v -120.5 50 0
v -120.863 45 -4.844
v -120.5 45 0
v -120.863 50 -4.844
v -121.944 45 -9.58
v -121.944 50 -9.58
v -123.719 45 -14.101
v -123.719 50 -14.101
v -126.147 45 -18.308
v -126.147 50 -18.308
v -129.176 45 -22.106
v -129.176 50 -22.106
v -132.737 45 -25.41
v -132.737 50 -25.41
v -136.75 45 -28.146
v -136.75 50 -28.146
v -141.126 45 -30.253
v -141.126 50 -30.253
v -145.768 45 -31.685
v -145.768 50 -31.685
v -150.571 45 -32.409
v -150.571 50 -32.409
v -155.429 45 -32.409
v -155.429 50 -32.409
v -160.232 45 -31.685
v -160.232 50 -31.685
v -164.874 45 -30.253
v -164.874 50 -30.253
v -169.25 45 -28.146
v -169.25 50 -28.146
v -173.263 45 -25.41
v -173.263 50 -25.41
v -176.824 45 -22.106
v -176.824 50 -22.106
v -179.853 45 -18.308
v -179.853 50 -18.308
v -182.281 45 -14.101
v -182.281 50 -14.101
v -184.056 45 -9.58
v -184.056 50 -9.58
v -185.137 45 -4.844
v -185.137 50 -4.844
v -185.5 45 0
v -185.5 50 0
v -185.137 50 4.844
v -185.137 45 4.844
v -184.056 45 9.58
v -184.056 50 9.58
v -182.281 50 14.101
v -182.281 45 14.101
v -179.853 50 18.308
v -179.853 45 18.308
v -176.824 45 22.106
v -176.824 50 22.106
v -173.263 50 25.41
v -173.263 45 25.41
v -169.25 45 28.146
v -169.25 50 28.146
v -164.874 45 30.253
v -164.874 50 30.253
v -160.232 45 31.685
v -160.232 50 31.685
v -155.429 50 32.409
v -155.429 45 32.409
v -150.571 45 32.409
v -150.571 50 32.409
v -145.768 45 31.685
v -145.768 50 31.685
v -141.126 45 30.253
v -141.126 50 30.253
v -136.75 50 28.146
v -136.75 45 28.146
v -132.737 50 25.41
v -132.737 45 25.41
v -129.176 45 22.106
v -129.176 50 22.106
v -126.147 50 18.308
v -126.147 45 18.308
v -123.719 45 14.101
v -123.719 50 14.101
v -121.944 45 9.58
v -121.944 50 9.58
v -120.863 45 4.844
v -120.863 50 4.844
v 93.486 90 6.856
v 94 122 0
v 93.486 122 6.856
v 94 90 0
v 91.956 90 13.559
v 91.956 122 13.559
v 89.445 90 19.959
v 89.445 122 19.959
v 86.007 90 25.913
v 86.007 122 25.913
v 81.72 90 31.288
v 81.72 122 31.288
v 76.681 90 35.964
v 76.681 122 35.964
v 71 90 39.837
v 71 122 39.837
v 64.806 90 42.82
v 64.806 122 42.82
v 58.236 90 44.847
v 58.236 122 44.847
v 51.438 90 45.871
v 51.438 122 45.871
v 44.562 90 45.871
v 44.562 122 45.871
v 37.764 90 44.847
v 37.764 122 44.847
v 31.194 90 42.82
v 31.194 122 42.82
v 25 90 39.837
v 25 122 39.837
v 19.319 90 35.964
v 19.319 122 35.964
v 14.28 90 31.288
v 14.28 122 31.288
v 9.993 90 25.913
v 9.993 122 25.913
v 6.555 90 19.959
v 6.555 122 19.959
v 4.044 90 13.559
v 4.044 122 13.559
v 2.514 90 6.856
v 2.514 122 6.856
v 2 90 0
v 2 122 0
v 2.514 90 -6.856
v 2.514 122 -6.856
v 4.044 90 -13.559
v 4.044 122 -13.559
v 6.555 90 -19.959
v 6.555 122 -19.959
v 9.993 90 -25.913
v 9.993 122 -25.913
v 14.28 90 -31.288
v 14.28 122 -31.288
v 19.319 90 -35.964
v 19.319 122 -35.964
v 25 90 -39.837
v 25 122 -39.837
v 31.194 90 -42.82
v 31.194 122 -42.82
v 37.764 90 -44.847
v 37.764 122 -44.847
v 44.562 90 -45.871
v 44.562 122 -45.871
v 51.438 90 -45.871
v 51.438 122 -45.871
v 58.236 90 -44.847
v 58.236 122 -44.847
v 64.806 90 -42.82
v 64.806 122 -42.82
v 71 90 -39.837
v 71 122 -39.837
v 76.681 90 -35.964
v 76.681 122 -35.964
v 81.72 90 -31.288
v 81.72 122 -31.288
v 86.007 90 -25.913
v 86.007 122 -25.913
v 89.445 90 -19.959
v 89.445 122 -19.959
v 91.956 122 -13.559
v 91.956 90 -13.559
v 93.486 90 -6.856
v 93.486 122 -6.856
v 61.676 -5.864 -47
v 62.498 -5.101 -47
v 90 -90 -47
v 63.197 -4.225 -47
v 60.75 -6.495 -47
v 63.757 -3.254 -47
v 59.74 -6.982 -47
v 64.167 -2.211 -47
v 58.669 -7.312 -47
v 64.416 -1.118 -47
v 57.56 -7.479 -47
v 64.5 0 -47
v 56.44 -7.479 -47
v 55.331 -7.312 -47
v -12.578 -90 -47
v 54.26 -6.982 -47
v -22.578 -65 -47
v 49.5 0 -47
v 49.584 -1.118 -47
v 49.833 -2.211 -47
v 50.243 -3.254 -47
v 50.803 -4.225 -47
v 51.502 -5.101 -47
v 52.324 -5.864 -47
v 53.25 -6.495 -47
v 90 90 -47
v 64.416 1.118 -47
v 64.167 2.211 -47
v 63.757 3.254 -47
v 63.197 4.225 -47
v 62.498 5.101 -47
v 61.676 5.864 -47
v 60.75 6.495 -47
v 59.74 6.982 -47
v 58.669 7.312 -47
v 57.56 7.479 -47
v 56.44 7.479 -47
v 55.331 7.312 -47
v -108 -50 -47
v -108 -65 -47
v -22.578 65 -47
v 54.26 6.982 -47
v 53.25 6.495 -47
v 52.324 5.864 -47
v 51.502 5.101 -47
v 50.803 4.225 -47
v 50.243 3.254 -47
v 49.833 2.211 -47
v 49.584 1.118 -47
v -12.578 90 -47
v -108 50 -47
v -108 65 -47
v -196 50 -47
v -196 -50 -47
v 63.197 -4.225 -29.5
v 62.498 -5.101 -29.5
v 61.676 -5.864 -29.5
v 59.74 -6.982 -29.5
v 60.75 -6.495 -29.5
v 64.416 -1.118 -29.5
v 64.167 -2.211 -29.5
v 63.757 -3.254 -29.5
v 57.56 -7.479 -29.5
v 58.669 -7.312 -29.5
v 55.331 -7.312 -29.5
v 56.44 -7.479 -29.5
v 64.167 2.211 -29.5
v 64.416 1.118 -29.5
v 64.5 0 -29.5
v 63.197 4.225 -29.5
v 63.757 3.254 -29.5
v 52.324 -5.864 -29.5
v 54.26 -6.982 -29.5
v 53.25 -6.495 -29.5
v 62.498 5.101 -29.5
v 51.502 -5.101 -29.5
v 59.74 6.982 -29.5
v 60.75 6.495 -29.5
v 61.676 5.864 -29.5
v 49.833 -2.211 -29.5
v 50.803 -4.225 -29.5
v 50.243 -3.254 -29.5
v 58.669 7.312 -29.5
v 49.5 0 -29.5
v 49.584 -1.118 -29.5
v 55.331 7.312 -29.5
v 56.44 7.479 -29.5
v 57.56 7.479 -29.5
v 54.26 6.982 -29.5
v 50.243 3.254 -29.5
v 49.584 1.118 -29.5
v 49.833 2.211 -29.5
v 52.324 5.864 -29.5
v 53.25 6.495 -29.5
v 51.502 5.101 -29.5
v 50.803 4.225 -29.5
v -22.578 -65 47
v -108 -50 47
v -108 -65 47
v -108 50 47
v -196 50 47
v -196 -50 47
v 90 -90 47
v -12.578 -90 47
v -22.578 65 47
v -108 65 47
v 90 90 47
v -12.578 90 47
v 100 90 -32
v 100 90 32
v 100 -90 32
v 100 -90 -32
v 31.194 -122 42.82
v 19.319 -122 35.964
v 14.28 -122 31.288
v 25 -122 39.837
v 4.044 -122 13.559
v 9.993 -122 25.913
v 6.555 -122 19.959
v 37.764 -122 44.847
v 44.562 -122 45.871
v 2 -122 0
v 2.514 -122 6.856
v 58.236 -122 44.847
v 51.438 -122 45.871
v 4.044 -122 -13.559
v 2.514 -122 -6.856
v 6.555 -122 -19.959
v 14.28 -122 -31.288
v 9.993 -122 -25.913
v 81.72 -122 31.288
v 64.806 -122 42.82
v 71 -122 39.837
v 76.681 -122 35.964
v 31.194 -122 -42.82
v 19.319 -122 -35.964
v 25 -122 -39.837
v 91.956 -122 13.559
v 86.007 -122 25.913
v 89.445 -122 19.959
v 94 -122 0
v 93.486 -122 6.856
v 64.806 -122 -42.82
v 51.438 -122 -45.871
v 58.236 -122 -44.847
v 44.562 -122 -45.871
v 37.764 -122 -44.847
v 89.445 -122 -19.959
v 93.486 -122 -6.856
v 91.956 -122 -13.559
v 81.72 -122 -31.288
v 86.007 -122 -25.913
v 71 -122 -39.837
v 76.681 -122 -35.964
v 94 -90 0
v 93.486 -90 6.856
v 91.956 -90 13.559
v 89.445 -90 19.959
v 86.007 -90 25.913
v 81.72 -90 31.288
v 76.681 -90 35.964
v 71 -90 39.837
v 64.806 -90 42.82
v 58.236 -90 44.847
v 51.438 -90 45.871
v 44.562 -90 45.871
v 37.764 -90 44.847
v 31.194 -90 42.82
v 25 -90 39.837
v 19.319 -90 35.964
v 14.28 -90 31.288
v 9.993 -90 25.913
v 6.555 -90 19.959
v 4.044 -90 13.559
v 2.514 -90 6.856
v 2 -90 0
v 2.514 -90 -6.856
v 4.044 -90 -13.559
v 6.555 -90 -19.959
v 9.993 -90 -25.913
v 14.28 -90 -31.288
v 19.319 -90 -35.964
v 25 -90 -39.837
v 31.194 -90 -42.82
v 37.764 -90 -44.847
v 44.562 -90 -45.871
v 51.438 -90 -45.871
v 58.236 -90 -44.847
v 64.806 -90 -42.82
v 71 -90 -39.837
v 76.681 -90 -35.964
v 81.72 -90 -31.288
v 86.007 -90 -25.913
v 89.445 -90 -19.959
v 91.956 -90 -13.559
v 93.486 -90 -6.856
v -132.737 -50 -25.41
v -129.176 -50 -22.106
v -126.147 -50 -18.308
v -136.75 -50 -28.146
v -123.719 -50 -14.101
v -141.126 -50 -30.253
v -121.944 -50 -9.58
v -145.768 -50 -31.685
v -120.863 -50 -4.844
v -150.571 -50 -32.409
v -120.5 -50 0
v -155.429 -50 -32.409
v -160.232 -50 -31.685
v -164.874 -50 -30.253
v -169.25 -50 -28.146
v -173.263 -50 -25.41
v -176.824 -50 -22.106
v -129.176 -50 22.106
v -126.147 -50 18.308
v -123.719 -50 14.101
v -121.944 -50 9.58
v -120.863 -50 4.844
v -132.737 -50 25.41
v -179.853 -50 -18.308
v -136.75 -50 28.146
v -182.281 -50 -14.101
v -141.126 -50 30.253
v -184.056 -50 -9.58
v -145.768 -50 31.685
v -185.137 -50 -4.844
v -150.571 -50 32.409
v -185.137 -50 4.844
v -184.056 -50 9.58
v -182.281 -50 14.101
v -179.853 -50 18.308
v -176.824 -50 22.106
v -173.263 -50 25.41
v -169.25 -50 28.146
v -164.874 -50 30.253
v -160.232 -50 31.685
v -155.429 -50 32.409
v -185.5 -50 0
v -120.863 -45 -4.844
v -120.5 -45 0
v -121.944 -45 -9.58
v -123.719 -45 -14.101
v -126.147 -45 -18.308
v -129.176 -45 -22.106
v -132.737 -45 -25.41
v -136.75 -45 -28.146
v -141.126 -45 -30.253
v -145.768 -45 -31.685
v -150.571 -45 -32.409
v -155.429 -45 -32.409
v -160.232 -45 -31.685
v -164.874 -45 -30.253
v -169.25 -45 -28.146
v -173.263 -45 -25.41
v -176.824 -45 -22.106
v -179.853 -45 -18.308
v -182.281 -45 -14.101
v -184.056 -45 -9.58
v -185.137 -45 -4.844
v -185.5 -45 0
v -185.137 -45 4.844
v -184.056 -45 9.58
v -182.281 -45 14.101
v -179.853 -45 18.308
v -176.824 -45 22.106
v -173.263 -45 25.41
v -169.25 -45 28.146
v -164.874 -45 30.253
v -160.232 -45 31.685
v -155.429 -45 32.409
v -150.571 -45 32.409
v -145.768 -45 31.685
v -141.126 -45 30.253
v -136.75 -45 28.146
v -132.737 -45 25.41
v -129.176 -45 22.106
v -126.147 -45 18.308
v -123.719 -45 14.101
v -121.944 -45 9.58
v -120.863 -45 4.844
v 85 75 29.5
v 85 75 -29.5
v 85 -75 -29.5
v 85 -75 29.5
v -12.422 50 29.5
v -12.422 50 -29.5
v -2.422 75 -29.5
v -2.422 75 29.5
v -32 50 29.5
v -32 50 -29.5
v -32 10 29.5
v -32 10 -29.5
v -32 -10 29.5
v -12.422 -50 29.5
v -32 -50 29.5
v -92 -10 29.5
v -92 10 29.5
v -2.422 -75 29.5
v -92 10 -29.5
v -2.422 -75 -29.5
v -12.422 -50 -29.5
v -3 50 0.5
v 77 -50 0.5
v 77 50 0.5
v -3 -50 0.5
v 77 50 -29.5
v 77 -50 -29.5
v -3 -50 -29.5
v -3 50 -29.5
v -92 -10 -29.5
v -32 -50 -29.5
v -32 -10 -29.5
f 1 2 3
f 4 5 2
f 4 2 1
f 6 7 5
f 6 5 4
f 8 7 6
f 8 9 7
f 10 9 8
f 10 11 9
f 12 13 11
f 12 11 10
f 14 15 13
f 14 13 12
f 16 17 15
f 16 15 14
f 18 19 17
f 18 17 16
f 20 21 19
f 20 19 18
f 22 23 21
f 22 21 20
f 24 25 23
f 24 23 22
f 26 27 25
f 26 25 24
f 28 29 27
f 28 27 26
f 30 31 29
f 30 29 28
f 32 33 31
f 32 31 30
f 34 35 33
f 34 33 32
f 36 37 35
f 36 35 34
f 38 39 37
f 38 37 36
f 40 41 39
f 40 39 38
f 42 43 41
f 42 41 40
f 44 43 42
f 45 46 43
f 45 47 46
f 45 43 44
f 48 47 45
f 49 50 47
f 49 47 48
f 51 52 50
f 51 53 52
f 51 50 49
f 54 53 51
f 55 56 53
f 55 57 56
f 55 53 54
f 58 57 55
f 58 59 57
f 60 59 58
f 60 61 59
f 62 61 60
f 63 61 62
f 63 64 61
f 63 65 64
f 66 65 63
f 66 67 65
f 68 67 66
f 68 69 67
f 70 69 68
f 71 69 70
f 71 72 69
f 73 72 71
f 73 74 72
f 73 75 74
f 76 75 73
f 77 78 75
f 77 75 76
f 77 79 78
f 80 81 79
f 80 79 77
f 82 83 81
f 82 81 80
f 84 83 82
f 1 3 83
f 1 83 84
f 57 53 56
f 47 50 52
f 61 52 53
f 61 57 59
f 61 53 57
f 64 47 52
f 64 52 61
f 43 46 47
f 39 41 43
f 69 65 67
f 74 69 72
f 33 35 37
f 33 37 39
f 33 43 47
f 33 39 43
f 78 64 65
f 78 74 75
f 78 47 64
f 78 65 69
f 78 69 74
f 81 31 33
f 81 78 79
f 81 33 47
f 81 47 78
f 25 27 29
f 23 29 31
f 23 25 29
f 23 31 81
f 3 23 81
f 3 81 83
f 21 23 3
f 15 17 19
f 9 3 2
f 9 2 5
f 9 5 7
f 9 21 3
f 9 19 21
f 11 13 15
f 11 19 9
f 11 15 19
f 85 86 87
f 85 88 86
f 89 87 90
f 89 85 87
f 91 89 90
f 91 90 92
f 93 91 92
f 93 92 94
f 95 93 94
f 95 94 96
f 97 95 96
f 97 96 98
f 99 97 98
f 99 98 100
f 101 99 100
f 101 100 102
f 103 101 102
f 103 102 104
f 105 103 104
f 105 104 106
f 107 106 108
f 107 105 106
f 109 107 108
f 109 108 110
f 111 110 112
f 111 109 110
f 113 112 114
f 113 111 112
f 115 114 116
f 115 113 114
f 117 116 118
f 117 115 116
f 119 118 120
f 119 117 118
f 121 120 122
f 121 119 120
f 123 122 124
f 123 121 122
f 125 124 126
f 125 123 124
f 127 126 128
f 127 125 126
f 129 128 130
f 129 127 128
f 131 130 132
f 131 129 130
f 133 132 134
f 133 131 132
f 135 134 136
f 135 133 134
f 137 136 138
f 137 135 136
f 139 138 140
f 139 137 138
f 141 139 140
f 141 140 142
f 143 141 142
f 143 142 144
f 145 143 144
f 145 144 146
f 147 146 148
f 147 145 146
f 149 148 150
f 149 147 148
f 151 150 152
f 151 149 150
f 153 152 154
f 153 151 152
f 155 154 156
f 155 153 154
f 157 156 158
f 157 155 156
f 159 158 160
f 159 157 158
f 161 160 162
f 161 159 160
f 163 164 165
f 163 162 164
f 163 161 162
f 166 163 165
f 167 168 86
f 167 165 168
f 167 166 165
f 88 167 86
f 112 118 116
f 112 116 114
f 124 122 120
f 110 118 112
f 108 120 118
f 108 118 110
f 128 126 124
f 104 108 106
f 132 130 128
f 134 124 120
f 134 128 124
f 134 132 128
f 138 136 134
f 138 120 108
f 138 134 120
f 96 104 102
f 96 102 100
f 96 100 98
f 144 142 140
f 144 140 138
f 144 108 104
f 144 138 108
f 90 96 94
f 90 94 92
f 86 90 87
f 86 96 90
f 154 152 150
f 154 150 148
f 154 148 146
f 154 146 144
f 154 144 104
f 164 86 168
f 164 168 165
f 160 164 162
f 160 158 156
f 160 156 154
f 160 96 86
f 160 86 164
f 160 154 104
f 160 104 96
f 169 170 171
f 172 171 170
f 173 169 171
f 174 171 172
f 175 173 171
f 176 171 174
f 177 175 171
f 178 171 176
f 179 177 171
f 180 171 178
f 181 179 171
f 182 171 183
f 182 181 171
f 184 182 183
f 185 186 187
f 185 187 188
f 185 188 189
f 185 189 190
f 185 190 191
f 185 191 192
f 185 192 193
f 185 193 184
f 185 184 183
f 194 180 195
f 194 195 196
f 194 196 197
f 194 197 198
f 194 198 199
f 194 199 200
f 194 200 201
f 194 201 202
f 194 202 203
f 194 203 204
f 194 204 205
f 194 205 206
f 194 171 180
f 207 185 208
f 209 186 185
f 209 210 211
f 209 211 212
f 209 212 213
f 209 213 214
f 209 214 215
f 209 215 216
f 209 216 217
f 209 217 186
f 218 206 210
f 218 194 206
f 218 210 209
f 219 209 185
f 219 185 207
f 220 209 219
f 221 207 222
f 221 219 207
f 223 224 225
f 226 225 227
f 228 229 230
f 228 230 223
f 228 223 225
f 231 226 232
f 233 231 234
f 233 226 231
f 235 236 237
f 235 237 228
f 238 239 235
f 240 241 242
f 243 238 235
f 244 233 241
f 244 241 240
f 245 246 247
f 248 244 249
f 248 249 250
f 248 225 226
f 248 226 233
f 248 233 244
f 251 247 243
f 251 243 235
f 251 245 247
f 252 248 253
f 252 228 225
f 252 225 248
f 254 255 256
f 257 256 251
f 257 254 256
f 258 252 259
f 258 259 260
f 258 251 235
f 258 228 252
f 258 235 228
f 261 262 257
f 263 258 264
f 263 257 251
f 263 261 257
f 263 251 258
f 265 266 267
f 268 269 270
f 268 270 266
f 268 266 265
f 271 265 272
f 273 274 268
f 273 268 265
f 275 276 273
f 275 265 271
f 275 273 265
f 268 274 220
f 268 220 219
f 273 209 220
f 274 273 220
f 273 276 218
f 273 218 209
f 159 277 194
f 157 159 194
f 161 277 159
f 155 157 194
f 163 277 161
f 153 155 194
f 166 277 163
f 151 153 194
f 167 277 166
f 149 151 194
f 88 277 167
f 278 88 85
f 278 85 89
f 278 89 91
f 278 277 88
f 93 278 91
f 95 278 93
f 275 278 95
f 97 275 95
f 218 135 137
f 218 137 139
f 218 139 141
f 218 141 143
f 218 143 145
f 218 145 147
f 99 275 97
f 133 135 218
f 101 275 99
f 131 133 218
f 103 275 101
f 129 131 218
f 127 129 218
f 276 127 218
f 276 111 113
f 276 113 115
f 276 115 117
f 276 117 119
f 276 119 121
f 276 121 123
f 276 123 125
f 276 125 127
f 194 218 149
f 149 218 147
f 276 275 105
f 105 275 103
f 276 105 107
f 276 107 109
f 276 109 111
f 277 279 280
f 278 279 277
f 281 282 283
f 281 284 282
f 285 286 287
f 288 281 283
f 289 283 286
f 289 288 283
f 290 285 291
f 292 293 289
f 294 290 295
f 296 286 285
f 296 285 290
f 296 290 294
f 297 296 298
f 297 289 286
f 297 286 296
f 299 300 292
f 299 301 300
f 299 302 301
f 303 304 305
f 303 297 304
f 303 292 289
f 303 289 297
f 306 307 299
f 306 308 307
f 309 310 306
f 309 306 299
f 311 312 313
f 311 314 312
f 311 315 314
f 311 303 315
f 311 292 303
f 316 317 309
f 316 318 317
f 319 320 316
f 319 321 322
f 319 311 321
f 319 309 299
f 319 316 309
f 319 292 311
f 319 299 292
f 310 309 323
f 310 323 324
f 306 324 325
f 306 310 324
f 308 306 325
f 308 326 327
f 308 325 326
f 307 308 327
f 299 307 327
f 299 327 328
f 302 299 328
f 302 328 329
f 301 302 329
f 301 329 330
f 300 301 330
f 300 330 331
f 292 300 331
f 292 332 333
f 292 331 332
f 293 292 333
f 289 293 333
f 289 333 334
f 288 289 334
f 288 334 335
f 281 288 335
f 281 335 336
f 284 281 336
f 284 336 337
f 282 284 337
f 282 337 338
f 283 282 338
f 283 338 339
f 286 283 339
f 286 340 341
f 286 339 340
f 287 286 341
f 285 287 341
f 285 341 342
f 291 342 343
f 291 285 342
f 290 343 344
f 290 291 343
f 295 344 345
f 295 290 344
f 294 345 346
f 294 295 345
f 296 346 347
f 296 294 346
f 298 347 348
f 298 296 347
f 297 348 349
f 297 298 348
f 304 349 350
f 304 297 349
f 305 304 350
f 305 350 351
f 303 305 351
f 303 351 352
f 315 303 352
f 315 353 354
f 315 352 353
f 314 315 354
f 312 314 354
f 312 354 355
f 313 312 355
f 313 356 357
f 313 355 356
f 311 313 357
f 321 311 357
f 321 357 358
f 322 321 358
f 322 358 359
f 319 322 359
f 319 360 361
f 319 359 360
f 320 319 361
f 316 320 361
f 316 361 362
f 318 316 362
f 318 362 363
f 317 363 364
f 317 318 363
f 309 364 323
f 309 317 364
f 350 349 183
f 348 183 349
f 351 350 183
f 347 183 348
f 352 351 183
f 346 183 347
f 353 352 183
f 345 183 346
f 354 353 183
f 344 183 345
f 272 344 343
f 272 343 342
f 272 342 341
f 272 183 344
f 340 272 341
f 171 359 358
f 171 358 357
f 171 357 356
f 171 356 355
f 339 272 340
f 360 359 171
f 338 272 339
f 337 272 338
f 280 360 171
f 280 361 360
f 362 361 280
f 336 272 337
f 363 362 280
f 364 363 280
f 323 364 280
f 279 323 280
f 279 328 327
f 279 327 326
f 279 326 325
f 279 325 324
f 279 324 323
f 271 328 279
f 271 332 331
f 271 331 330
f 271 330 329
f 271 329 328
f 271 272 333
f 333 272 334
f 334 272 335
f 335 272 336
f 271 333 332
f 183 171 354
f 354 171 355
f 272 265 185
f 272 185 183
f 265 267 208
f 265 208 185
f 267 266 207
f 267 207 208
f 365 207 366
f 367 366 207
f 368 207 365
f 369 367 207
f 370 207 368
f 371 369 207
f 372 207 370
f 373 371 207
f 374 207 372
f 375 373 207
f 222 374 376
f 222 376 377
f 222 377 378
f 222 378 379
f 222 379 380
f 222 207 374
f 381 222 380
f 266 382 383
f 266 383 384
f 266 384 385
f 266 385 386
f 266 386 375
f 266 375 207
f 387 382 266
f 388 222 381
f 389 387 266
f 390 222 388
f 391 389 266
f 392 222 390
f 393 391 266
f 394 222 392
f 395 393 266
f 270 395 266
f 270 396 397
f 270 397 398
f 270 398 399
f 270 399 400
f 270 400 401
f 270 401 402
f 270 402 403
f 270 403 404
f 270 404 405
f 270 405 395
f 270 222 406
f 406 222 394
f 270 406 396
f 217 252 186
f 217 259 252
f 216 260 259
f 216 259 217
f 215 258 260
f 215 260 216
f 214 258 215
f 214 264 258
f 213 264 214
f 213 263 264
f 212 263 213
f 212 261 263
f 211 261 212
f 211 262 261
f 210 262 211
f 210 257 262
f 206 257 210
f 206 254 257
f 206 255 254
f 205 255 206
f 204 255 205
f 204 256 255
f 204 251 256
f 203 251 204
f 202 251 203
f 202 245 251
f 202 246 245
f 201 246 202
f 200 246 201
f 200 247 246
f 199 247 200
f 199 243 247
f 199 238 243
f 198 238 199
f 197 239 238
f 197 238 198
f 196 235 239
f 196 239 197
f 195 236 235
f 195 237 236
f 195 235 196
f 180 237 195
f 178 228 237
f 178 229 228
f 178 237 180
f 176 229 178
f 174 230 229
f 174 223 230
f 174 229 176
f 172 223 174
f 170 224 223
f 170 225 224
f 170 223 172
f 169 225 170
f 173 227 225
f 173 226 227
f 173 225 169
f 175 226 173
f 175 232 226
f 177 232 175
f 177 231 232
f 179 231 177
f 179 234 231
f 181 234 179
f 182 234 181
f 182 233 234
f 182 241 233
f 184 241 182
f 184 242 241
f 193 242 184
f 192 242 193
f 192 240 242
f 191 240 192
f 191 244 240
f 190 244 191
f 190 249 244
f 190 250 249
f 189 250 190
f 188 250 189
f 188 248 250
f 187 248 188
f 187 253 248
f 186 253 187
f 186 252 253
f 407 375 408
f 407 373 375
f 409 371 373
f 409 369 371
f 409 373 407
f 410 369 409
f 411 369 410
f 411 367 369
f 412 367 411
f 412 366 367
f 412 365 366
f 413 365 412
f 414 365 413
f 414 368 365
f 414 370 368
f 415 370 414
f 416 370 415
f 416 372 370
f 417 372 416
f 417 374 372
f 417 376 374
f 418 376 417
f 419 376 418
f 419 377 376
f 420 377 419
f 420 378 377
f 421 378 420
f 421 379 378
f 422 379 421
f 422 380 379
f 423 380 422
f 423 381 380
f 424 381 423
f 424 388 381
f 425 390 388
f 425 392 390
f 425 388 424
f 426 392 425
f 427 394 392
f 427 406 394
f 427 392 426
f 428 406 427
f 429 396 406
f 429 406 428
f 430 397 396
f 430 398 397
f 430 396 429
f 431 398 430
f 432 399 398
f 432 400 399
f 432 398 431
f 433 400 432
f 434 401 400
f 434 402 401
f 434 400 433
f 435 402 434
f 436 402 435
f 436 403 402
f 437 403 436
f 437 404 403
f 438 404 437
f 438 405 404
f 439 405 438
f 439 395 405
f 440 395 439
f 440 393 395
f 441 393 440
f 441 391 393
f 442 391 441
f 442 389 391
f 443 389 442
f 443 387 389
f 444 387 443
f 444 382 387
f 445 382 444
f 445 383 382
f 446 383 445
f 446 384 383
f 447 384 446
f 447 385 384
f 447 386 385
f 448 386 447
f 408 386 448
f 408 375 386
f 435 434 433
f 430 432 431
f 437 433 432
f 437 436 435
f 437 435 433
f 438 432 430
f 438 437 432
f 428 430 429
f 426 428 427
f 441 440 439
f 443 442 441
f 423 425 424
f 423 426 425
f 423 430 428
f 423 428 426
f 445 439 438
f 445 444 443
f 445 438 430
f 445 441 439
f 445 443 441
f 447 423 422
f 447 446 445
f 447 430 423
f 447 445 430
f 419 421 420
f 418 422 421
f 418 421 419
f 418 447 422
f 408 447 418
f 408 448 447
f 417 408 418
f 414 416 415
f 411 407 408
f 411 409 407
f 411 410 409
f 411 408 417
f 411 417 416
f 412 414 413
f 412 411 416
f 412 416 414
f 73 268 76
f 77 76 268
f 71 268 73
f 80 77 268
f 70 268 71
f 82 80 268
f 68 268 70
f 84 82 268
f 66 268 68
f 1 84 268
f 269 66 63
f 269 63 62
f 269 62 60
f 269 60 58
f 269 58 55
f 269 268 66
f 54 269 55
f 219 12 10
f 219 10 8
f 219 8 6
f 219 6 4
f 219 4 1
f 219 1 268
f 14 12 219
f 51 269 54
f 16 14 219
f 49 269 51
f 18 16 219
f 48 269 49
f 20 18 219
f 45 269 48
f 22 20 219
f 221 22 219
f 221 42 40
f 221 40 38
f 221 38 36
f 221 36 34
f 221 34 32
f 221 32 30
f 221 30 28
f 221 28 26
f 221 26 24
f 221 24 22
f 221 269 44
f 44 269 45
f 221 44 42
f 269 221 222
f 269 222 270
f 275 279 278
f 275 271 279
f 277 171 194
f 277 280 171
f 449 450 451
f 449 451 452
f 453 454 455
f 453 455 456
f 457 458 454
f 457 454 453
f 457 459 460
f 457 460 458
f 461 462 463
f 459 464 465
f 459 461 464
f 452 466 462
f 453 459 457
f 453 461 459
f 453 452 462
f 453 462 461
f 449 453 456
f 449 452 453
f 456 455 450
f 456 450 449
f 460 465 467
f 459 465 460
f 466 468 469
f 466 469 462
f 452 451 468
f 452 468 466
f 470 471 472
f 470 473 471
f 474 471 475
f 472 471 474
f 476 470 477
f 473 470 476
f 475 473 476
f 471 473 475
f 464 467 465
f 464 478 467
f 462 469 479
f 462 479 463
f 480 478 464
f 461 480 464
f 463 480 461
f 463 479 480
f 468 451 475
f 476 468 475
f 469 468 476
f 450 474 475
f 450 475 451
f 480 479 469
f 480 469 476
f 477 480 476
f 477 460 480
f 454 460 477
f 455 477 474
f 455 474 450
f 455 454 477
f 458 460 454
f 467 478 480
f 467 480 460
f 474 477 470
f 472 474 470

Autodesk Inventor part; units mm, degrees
ref_plane "YZ Plane" through (0, 0, 0) normal (1, 0, 0) x (0, 1, 0)
ref_plane "XZ Plane" through (0, 0, 0) normal (0, 1, 0) x (-1, 0, 0)
sketch "Sketch1" plane through (0, 0, 0) normal (0, 0, 1) x (1, 0, 0)
  line L0 (-100, 0) -> (100, 0) construction
  line L1 (-100, 65) -> (-100, -65)
  circle A0 centre (-52.5, 57.5) radius 2.25
  line L2 (100, -70) -> (100, 70) construction
  line L3 (-92, 0) -> (-92, 57.5) construction
  line L4 (-92, 0) -> (-92, -57.5) construction
  circle A1 centre (-92.5, 57.5) radius 2.25
  circle A2 centre (-92.5, 57.5) radius 1.25
  circle A3 centre (-52.5, 57.5) radius 1.25
  line L5 (-100, 65) -> (-22.5777, 65)
  line L6 (-22.5777, 65) -> (-12.5777, 90)
  line L7 (-12.5777, 90) -> (100, 90)
  line L8 (100, 90) -> (100, 0)
  line L9 (100, -90) -> (100, 0)
  line L10 (-12.5777, -90) -> (100, -90)
  line L11 (-22.5777, -65) -> (-12.5777, -90)
  line L12 (-100, -65) -> (-22.5777, -65)
  line L13 (85, 75) -> (-2.4223, 75)
  line L14 (-2.4223, 75) -> (-12.4223, 50)
  line L15 (-12.4223, 50) -> (-92, 50)
  line L16 (-92, -50) -> (-12.4223, -50)
  line L17 (-12.4223, -50) -> (-2.4223, -75)
  line L18 (-2.4223, -75) -> (85, -75)
  line L19 (92.5, 82.5) -> (-7.5, 82.5) construction
  line L20 (-7.5, 82.5) -> (-17.5, 57.5) construction
  line L21 (-17.5, 57.5) -> (-92.5, 57.5) construction
  line L22 (-92.5, 57.5) -> (-92.5, -57.5) construction
  line L23 (-92.5, -57.5) -> (-17.5, -57.5) construction
  line L24 (-17.5, -57.5) -> (-7.5, -82.5) construction
  line L25 (-7.5, -82.5) -> (92.5, -82.5) construction
  line L26 (92.5, -82.5) -> (92.5, 0) construction
  line L27 (92.5, 0) -> (92.5, 82.5) construction
  line L28 (85, 75) -> (85, -75)
  line L29 (-100, 65) -> (-108, 65)
  line L30 (-108, 65) -> (-108, -65)
  line L31 (-108, -65) -> (-100, -65)
  line L32 (-100, -65) -> (-100, 65)
  line L33 (100, 0) -> (-108, 0)
  circle A4 centre (20, 82.5) radius 1.25
  circle A5 centre (20, 82.5) radius 2.25
  circle A6 centre (80, 82.5) radius 1.25
  circle A7 centre (80, 82.5) radius 2.25
  line L34 (50, 90) -> (50, 75) construction
  circle A8 centre (-12.5, 70) radius 1.25
  circle A9 centre (-12.5, 70) radius 2.25
  line L35 (-92, 50) -> (-92, -50)
  circle A10 centre (-96, 0) radius 2.25
  circle A11 centre (-96, 0) radius 1.25
  circle A12 centre (-104, 30) radius 2.25
  circle A13 centre (-104, 30) radius 1.25
  circle A14 centre (-104, -30) radius 2.25
  circle A15 centre (-104, -30) radius 1.25
  line L36 (-104, 65) -> (-104, -65) construction
  line L37 (-32, 50) -> (-32, 10)
  line L38 (-32, 10) -> (-92, 10)
  line L39 (77, 0) -> (77, -50)
  line L40 (77, -50) -> (-3, -50)
  line L41 (-3, -50) -> (-3, 0)
  line L42 (77, -40) -> (67, -40)
  line L43 (67, -40) -> (67, -50)
  line L44 (27, -50) -> (27, -40)
  line L45 (27, -40) -> (17, -40)
  line L46 (17, -40) -> (17, -50)
  circle A16 centre (57, 0) radius 7.5
  point P0 (0, 0)
  point P1 (0, 0)
  point P2 (77, 0)
  point P3 (-3, 0)
  dimension "d0" = 130
  dimension "d1" = 8
  dimension "d2" = 200
  dimension "d15" = 15
  dimension "d17" = 7.5
  dimension "d18" = 4.5
  dimension "d19" = 2.5
  dimension "d20" = 40
  dimension "d21" = 180
  dimension "d22" = 15
  dimension "d24" = 8
  dimension "d28" = 20
  dimension "d29" = 50
  dimension "d30" = 40
  dimension "d40" = 30
  dimension "d41" = 4
  dimension "d110" = 40
  dimension "d111" = 60
  dimension "d114" = 10
  dimension "d115" = 8
  dimension "d132" = 50
  dimension "d133" = 80
  dimension "d135" = 15
  dimension "d138" = 20
  dimension "d139" = 29
  dimension "d140" = 40
  dimension "d141" = 10
sketch "Sketch6" plane through (0, 0, 0) normal (0, 0, 1) x (1, 0, 0)
  line L0 (0, -140.4945) -> (0, 142.9668) construction
  line L1 (59.9258, 0) -> (340.445, 0) construction
  line L2 (100, -70) -> (100, 70) construction
  line L3 (300, -100) -> (100, -70)
  line L4 (300, 100) -> (100, 70)
  dimension "d146" = 300
  dimension "d147" = 100
ref_plane "Work Plane2" through (300, 100, 0) normal (-0.9889364, -0.1483405, 0) x (0.1483405, -0.9889364, 0)
sketch "Sketch7" plane through (300, 100, 0) normal (-0.9889364, -0.1483405, 0) x (0.1483405, -0.9889364, 0)
  circle A0 centre (0, 0) radius 2.5
  dimension "d150" = 5
extrude "Extrusion1" add sketch "Sketch1" along normal mid plane 94 contours L5 L6 L7 L8 L33 L28 L13 L14 L15 L35 A10 L1 | L1 L33 L30 L29 | L33 A10 L35 L16 L17 L18 L28 L9 L10 L11 L12 L1 | L1 L31 L30 L33 | A10 L33 A11 | L33 A11 A10 | A11 L33 | L33 A11 | L35 L38 L37 L15 L14 L13 L28 L33 A16 | L33 L41 L40 L39 L28 L18 L17 L16 L35 | L33 A16 L39 L42 L43 L40 L44 L45 L46 L41 | L35 L15 L37 L38 | A16 L33 | L33 A16 | L46 L45 L44 L40 | L39 L40 L43 L42 | A0 | A1 | A2 | A3 | A4 | A5 | A6 | A7 | A8 | A9 | A12 | A13 | A14 | A15
extrude "Extrusion2" cut sketch "Sketch1" along normal mid plane 59 contours L35 L38 L37 L15 L14 L13 L28 L33 A16 | L33 L41 L40 L39 L28 L18 L17 L16 L35 | L33 A16 L39 L42 L43 L40 L44 L45 L46 L41 | L35 L15 L37 L38 | A16 L33 | L33 A16 | L46 L45 L44 L40 | L39 L40 L43 L42
sketch "Sketch2" plane through (-108, -65, 47) normal (-1, 0, 0) x (0, 0, 1)
  line L0 (0, -25) -> (0, 155) projected
  line L1 (-94, 15) -> (0, 15)
  line L2 (0, 15) -> (0, 115)
  line L3 (0, 115) -> (-94, 115)
  line L4 (-94, 115) -> (-94, 15)
  line L5 (-94, 15) -> (0, 115) construction
  line L6 (0, 15) -> (-94, 115) construction
  line L7 (-94, 42) -> (0, 42)
  line L8 (0, 42) -> (0, 88)
  line L9 (0, 88) -> (-94, 88)
  line L10 (-94, 88) -> (-94, 42)
  line L11 (-94, 42) -> (0, 88) construction
  line L12 (0, 42) -> (-94, 88) construction
  point P0 (-47, 65)
  dimension "d52" = 100
  dimension "d55" = 46
extrude "Extrusion3" add sketch "Sketch2" along normal blind 88
extrude "Extrusion4" [suppressed]
sketch "Sketch3" plane through (0, 0, 0) normal (0, 1, 0) x (-1, 0, 0)
  circle A0 centre (153, 0) radius 32.5
  line L0 (108, -47) -> (108, 47) projected
  line L1 (108, -47) -> (108, 47) projected
  line L2 (108, -47) -> (108, 47) construction
  line L3 (108, 0) -> (245.8238, 0) construction
  circle A1 centre (153, 0) radius 40
  line L4 (183.942, 9.942) -> (196, 22)
  line L5 (196, 22) -> (196, -22)
  line L6 (196, -22) -> (183.942, -9.942)
  line L7 (196, 47) -> (196, -47) projected
  line L8 (204, 47) -> (224, 20)
  line L9 (224, 20) -> (224, 47)
  line L10 (224, 47) -> (204, 47)
  line L11 (196, -47) -> (224, -47)
  line L12 (204, -47) -> (224, -20)
  line L13 (224, -20) -> (224, -47)
  line L14 (-100, 47) -> (12.5777, 47) projected
  line L15 (-100, 47) -> (-100, 32)
  line L16 (-100, 32) -> (-90, 47)
  line L17 (-100, -47) -> (12.5777, -47)
  line L18 (-100, -47) -> (-100, -32)
  line L19 (-100, -32) -> (-90, -47)
  circle A2 centre (-48, 0) radius 46
  line L20 (-100, 47) -> (-100, -47) projected
  circle A3 centre (-48, 0) radius 32.5
  line L21 (-4.8723, -16) -> (13.1277, -16)
  line L22 (13.1277, -16) -> (13.1277, 16)
  line L23 (13.1277, 16) -> (-4.8723, 16)
  point P0 (0, 0)
  point P1 (189.7631, 15.7631)
  point P2 (189.7631, -15.7631)
  dimension "d58" = 45
  dimension "d59" = 65
  dimension "d62" = 80
  dimension "d64" = 44
  dimension "d69" = 20
  dimension "d70" = 27
  dimension "d80" = 15
  dimension "d81" = 10
  dimension "d87" = 52
  dimension "d88" = 92
  dimension "d116" = 65
  dimension "d121" = 32
  dimension "d122" = 18
  dimension "d134" = 8
  dimension "d143" = 48
extrude "Extrusion15" cut sketch "Sketch3" along normal through all both and the other way through all contours L10 L9 L8 | L12 L13 L11 | L14 L16 L15 | L18 L19 L17
extrude "Extrusion16" add sketch "Sketch1" along normal through all both and the other way through all contours L35 L15 L37 L38
extrude "Extrusion14" add sketch "Sketch3" against normal blind 32 from surface at -90 contours A2 | A3
extrude "Extrusion17" [suppressed]
extrude "Extrusion18" cut sketch "Sketch3" along normal blind 5 from surface at -50 contours A0
extrude "Extrusion21" cut sketch "Sketch1" along normal up to surface (17.5 mm away) from surface at -47 contours A16 L33 | L33 A16
extrude "Extrusion22" add sketch "Sketch1" along normal blind 30 from surface at -29.5 contours L33 A16 L39 L42 L43 L40 L44 L45 L46 L41 | L33 A16 | L46 L45 L44 L40 | L39 L40 L43 L42 picked at (58.4928, -2.6557)
extrude "Extrusion24" [suppressed]
mirror "Mirror2" about plane through (0, 0, 0) normal (0, 1, 0) of "Extrusion14", "Extrusion16", "Extrusion18", "Extrusion22"
equation "\"d17\" = 0.5 * d15"
equation "\"d21\" = d47"
equation "\"d45\" = 124"
equation "\"d46\" = 12"
equation "\"d47\" = 180"
